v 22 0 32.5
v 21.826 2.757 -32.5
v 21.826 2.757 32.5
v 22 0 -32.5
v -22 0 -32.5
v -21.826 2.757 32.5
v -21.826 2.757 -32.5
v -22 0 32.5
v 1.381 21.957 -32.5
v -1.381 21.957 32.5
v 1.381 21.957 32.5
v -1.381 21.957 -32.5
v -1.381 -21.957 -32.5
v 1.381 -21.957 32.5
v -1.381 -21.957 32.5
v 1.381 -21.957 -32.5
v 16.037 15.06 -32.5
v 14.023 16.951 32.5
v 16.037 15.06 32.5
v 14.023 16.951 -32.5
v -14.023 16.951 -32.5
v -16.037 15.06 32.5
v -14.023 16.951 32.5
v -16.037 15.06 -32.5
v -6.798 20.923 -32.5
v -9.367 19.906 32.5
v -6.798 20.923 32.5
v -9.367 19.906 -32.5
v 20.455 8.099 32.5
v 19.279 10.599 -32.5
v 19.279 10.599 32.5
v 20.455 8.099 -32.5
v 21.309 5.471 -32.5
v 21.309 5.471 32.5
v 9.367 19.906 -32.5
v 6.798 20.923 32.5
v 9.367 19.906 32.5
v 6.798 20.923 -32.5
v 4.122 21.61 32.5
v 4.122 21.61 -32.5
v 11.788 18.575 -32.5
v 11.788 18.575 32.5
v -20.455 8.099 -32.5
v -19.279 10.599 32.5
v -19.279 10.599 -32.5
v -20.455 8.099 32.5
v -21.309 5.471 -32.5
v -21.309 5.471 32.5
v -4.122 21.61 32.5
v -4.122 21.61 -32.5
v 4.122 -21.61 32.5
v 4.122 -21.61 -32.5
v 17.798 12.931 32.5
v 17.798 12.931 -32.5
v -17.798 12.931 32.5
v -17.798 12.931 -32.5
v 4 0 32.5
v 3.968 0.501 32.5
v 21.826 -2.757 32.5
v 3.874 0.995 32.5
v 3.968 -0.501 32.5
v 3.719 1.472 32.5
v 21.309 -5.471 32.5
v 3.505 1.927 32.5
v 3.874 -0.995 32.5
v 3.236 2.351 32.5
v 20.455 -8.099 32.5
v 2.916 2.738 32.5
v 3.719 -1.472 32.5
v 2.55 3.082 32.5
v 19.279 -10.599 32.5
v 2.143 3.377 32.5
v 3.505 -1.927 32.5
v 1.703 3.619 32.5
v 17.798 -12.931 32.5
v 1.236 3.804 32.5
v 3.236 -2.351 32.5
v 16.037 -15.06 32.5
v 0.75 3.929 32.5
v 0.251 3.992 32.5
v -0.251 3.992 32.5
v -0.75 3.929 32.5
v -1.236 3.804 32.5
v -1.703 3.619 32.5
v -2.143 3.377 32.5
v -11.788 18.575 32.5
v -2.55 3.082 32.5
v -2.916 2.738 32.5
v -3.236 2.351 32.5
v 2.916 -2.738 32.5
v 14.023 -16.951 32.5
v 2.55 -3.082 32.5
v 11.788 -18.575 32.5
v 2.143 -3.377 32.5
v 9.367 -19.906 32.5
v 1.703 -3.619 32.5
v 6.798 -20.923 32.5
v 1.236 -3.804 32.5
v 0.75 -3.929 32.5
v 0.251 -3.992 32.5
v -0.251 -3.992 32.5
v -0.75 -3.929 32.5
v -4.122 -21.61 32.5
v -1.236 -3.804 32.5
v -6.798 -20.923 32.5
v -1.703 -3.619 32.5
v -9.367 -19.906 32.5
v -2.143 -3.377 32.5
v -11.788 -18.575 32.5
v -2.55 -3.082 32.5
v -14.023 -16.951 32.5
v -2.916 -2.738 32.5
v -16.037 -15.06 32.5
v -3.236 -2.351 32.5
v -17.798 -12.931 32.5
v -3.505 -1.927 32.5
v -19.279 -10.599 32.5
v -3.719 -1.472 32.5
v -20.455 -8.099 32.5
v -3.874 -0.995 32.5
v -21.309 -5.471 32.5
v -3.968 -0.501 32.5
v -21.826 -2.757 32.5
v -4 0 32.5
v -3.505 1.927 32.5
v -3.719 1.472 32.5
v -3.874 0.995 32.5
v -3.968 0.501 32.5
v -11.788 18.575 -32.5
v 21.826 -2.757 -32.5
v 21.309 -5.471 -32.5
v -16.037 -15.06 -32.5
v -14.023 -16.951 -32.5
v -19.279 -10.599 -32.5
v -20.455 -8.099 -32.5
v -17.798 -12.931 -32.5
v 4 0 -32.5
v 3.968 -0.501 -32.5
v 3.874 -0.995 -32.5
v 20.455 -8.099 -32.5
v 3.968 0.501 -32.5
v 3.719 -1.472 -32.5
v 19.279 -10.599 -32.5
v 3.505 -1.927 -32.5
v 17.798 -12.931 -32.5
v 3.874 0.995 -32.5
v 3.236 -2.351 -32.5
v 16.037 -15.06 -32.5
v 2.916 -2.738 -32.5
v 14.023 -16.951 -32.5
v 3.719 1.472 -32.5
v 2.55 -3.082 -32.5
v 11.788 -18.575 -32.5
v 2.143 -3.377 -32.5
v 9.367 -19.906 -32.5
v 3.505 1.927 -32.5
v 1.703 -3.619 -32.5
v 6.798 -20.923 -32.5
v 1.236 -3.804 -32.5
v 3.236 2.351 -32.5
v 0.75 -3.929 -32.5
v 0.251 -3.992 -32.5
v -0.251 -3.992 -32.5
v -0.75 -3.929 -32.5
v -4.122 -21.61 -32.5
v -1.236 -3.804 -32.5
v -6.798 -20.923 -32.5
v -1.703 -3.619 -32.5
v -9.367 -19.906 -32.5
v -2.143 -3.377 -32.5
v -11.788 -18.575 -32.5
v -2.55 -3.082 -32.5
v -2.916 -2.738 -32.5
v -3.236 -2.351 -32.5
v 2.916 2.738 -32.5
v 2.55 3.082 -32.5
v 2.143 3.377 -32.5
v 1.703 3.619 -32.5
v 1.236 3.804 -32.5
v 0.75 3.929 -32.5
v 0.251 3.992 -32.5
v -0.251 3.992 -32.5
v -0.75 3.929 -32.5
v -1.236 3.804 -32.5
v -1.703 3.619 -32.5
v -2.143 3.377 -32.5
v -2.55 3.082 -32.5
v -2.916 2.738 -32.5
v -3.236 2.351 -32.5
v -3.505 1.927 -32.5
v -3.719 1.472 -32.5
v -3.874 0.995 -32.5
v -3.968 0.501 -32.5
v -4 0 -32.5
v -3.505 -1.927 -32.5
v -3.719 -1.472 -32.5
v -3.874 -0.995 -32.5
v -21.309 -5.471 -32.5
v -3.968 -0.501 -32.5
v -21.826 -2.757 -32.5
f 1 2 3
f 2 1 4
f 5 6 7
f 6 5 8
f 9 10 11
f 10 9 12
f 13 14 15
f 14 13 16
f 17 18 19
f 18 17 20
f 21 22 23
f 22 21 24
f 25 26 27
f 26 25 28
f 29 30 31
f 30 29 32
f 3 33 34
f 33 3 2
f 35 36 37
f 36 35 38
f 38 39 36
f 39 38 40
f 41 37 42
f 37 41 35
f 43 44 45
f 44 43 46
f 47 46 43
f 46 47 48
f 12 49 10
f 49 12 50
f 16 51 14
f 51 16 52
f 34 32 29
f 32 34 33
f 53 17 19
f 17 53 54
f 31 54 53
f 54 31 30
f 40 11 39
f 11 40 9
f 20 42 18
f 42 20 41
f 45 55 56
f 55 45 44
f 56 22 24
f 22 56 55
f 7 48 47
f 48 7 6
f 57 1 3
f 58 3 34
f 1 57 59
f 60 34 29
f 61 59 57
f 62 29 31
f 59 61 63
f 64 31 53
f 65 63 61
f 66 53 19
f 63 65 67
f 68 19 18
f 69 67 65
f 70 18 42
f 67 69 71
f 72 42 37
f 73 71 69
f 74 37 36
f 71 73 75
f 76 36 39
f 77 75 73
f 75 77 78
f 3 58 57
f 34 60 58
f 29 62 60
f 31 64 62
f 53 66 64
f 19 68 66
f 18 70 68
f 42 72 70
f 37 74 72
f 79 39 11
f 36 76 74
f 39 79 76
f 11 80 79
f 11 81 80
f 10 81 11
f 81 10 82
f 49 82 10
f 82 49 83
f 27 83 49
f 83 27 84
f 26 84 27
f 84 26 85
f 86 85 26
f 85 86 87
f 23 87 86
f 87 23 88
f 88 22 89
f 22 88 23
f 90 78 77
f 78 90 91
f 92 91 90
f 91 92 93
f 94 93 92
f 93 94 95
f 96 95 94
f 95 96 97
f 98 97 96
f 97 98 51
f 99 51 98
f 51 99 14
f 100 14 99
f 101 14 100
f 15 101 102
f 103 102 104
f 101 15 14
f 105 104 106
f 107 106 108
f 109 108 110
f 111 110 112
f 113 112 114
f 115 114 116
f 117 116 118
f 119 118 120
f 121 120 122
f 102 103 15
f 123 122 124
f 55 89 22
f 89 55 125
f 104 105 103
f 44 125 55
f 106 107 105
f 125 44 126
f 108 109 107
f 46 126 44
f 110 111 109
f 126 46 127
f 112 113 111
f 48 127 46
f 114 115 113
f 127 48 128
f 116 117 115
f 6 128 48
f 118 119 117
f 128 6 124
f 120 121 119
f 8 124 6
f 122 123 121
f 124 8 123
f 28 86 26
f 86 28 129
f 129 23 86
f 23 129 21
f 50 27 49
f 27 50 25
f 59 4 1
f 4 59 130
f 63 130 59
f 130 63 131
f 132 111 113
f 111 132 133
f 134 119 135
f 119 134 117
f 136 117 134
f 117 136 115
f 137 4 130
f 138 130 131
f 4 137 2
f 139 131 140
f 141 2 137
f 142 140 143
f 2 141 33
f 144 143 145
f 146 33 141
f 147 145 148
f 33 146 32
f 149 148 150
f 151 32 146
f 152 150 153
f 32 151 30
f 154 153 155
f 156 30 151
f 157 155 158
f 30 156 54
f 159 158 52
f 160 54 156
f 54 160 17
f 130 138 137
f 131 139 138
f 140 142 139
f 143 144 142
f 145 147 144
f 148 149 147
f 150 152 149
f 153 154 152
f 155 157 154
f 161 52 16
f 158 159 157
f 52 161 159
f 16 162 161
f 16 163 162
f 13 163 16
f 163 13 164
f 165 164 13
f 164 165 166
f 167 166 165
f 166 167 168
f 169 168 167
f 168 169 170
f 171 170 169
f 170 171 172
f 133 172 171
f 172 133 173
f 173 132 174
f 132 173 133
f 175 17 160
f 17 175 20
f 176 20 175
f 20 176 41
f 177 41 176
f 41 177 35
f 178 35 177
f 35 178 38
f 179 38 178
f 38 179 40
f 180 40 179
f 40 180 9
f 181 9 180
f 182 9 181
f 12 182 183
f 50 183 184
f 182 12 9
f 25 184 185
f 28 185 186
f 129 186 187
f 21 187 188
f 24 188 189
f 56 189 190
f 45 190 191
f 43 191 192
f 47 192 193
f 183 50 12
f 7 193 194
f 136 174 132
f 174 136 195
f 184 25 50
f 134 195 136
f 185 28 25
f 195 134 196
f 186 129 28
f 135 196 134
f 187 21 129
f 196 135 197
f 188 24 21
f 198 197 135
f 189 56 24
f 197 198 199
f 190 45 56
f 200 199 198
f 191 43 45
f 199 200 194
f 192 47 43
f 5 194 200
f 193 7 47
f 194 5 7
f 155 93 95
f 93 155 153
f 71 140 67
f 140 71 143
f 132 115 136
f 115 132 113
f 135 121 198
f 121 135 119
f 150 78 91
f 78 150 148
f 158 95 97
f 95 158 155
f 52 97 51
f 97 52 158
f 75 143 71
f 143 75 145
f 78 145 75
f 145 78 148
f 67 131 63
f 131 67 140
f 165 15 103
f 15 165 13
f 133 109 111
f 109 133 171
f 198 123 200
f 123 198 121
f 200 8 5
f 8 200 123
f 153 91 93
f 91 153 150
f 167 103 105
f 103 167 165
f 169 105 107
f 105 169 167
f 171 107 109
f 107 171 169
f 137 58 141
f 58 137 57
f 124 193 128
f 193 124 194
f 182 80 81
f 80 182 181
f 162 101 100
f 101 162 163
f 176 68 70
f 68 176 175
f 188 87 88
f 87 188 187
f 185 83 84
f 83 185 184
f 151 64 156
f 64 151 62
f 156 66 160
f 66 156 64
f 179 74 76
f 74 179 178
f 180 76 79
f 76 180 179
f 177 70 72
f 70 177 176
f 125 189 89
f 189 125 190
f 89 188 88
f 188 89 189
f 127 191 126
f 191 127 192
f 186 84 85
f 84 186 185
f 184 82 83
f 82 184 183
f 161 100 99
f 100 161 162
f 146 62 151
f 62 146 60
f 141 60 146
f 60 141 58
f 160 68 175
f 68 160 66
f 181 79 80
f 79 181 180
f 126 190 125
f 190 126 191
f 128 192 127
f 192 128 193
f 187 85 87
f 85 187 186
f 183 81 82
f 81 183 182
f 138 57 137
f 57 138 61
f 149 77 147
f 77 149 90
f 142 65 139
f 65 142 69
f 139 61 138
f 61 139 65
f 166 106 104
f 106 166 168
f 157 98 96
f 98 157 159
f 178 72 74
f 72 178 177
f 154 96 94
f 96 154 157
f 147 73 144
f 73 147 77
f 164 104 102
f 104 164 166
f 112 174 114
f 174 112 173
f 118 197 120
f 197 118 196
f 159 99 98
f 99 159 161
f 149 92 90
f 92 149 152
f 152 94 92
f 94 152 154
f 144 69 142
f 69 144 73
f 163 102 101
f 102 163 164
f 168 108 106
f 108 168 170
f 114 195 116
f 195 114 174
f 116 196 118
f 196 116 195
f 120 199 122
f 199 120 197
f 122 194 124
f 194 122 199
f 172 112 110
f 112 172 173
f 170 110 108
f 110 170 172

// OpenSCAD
$fn = 50;


difference() {
	union() {
		translate(v = [0, 0, -32.5000000000]) {
			cylinder(h = 65, r = 22.0000000000);
		}
	}
	union() {
		translate(v = [0, 0, -100.0000000000]) {
			cylinder(h = 200, r = 4);
		}
	}
}
